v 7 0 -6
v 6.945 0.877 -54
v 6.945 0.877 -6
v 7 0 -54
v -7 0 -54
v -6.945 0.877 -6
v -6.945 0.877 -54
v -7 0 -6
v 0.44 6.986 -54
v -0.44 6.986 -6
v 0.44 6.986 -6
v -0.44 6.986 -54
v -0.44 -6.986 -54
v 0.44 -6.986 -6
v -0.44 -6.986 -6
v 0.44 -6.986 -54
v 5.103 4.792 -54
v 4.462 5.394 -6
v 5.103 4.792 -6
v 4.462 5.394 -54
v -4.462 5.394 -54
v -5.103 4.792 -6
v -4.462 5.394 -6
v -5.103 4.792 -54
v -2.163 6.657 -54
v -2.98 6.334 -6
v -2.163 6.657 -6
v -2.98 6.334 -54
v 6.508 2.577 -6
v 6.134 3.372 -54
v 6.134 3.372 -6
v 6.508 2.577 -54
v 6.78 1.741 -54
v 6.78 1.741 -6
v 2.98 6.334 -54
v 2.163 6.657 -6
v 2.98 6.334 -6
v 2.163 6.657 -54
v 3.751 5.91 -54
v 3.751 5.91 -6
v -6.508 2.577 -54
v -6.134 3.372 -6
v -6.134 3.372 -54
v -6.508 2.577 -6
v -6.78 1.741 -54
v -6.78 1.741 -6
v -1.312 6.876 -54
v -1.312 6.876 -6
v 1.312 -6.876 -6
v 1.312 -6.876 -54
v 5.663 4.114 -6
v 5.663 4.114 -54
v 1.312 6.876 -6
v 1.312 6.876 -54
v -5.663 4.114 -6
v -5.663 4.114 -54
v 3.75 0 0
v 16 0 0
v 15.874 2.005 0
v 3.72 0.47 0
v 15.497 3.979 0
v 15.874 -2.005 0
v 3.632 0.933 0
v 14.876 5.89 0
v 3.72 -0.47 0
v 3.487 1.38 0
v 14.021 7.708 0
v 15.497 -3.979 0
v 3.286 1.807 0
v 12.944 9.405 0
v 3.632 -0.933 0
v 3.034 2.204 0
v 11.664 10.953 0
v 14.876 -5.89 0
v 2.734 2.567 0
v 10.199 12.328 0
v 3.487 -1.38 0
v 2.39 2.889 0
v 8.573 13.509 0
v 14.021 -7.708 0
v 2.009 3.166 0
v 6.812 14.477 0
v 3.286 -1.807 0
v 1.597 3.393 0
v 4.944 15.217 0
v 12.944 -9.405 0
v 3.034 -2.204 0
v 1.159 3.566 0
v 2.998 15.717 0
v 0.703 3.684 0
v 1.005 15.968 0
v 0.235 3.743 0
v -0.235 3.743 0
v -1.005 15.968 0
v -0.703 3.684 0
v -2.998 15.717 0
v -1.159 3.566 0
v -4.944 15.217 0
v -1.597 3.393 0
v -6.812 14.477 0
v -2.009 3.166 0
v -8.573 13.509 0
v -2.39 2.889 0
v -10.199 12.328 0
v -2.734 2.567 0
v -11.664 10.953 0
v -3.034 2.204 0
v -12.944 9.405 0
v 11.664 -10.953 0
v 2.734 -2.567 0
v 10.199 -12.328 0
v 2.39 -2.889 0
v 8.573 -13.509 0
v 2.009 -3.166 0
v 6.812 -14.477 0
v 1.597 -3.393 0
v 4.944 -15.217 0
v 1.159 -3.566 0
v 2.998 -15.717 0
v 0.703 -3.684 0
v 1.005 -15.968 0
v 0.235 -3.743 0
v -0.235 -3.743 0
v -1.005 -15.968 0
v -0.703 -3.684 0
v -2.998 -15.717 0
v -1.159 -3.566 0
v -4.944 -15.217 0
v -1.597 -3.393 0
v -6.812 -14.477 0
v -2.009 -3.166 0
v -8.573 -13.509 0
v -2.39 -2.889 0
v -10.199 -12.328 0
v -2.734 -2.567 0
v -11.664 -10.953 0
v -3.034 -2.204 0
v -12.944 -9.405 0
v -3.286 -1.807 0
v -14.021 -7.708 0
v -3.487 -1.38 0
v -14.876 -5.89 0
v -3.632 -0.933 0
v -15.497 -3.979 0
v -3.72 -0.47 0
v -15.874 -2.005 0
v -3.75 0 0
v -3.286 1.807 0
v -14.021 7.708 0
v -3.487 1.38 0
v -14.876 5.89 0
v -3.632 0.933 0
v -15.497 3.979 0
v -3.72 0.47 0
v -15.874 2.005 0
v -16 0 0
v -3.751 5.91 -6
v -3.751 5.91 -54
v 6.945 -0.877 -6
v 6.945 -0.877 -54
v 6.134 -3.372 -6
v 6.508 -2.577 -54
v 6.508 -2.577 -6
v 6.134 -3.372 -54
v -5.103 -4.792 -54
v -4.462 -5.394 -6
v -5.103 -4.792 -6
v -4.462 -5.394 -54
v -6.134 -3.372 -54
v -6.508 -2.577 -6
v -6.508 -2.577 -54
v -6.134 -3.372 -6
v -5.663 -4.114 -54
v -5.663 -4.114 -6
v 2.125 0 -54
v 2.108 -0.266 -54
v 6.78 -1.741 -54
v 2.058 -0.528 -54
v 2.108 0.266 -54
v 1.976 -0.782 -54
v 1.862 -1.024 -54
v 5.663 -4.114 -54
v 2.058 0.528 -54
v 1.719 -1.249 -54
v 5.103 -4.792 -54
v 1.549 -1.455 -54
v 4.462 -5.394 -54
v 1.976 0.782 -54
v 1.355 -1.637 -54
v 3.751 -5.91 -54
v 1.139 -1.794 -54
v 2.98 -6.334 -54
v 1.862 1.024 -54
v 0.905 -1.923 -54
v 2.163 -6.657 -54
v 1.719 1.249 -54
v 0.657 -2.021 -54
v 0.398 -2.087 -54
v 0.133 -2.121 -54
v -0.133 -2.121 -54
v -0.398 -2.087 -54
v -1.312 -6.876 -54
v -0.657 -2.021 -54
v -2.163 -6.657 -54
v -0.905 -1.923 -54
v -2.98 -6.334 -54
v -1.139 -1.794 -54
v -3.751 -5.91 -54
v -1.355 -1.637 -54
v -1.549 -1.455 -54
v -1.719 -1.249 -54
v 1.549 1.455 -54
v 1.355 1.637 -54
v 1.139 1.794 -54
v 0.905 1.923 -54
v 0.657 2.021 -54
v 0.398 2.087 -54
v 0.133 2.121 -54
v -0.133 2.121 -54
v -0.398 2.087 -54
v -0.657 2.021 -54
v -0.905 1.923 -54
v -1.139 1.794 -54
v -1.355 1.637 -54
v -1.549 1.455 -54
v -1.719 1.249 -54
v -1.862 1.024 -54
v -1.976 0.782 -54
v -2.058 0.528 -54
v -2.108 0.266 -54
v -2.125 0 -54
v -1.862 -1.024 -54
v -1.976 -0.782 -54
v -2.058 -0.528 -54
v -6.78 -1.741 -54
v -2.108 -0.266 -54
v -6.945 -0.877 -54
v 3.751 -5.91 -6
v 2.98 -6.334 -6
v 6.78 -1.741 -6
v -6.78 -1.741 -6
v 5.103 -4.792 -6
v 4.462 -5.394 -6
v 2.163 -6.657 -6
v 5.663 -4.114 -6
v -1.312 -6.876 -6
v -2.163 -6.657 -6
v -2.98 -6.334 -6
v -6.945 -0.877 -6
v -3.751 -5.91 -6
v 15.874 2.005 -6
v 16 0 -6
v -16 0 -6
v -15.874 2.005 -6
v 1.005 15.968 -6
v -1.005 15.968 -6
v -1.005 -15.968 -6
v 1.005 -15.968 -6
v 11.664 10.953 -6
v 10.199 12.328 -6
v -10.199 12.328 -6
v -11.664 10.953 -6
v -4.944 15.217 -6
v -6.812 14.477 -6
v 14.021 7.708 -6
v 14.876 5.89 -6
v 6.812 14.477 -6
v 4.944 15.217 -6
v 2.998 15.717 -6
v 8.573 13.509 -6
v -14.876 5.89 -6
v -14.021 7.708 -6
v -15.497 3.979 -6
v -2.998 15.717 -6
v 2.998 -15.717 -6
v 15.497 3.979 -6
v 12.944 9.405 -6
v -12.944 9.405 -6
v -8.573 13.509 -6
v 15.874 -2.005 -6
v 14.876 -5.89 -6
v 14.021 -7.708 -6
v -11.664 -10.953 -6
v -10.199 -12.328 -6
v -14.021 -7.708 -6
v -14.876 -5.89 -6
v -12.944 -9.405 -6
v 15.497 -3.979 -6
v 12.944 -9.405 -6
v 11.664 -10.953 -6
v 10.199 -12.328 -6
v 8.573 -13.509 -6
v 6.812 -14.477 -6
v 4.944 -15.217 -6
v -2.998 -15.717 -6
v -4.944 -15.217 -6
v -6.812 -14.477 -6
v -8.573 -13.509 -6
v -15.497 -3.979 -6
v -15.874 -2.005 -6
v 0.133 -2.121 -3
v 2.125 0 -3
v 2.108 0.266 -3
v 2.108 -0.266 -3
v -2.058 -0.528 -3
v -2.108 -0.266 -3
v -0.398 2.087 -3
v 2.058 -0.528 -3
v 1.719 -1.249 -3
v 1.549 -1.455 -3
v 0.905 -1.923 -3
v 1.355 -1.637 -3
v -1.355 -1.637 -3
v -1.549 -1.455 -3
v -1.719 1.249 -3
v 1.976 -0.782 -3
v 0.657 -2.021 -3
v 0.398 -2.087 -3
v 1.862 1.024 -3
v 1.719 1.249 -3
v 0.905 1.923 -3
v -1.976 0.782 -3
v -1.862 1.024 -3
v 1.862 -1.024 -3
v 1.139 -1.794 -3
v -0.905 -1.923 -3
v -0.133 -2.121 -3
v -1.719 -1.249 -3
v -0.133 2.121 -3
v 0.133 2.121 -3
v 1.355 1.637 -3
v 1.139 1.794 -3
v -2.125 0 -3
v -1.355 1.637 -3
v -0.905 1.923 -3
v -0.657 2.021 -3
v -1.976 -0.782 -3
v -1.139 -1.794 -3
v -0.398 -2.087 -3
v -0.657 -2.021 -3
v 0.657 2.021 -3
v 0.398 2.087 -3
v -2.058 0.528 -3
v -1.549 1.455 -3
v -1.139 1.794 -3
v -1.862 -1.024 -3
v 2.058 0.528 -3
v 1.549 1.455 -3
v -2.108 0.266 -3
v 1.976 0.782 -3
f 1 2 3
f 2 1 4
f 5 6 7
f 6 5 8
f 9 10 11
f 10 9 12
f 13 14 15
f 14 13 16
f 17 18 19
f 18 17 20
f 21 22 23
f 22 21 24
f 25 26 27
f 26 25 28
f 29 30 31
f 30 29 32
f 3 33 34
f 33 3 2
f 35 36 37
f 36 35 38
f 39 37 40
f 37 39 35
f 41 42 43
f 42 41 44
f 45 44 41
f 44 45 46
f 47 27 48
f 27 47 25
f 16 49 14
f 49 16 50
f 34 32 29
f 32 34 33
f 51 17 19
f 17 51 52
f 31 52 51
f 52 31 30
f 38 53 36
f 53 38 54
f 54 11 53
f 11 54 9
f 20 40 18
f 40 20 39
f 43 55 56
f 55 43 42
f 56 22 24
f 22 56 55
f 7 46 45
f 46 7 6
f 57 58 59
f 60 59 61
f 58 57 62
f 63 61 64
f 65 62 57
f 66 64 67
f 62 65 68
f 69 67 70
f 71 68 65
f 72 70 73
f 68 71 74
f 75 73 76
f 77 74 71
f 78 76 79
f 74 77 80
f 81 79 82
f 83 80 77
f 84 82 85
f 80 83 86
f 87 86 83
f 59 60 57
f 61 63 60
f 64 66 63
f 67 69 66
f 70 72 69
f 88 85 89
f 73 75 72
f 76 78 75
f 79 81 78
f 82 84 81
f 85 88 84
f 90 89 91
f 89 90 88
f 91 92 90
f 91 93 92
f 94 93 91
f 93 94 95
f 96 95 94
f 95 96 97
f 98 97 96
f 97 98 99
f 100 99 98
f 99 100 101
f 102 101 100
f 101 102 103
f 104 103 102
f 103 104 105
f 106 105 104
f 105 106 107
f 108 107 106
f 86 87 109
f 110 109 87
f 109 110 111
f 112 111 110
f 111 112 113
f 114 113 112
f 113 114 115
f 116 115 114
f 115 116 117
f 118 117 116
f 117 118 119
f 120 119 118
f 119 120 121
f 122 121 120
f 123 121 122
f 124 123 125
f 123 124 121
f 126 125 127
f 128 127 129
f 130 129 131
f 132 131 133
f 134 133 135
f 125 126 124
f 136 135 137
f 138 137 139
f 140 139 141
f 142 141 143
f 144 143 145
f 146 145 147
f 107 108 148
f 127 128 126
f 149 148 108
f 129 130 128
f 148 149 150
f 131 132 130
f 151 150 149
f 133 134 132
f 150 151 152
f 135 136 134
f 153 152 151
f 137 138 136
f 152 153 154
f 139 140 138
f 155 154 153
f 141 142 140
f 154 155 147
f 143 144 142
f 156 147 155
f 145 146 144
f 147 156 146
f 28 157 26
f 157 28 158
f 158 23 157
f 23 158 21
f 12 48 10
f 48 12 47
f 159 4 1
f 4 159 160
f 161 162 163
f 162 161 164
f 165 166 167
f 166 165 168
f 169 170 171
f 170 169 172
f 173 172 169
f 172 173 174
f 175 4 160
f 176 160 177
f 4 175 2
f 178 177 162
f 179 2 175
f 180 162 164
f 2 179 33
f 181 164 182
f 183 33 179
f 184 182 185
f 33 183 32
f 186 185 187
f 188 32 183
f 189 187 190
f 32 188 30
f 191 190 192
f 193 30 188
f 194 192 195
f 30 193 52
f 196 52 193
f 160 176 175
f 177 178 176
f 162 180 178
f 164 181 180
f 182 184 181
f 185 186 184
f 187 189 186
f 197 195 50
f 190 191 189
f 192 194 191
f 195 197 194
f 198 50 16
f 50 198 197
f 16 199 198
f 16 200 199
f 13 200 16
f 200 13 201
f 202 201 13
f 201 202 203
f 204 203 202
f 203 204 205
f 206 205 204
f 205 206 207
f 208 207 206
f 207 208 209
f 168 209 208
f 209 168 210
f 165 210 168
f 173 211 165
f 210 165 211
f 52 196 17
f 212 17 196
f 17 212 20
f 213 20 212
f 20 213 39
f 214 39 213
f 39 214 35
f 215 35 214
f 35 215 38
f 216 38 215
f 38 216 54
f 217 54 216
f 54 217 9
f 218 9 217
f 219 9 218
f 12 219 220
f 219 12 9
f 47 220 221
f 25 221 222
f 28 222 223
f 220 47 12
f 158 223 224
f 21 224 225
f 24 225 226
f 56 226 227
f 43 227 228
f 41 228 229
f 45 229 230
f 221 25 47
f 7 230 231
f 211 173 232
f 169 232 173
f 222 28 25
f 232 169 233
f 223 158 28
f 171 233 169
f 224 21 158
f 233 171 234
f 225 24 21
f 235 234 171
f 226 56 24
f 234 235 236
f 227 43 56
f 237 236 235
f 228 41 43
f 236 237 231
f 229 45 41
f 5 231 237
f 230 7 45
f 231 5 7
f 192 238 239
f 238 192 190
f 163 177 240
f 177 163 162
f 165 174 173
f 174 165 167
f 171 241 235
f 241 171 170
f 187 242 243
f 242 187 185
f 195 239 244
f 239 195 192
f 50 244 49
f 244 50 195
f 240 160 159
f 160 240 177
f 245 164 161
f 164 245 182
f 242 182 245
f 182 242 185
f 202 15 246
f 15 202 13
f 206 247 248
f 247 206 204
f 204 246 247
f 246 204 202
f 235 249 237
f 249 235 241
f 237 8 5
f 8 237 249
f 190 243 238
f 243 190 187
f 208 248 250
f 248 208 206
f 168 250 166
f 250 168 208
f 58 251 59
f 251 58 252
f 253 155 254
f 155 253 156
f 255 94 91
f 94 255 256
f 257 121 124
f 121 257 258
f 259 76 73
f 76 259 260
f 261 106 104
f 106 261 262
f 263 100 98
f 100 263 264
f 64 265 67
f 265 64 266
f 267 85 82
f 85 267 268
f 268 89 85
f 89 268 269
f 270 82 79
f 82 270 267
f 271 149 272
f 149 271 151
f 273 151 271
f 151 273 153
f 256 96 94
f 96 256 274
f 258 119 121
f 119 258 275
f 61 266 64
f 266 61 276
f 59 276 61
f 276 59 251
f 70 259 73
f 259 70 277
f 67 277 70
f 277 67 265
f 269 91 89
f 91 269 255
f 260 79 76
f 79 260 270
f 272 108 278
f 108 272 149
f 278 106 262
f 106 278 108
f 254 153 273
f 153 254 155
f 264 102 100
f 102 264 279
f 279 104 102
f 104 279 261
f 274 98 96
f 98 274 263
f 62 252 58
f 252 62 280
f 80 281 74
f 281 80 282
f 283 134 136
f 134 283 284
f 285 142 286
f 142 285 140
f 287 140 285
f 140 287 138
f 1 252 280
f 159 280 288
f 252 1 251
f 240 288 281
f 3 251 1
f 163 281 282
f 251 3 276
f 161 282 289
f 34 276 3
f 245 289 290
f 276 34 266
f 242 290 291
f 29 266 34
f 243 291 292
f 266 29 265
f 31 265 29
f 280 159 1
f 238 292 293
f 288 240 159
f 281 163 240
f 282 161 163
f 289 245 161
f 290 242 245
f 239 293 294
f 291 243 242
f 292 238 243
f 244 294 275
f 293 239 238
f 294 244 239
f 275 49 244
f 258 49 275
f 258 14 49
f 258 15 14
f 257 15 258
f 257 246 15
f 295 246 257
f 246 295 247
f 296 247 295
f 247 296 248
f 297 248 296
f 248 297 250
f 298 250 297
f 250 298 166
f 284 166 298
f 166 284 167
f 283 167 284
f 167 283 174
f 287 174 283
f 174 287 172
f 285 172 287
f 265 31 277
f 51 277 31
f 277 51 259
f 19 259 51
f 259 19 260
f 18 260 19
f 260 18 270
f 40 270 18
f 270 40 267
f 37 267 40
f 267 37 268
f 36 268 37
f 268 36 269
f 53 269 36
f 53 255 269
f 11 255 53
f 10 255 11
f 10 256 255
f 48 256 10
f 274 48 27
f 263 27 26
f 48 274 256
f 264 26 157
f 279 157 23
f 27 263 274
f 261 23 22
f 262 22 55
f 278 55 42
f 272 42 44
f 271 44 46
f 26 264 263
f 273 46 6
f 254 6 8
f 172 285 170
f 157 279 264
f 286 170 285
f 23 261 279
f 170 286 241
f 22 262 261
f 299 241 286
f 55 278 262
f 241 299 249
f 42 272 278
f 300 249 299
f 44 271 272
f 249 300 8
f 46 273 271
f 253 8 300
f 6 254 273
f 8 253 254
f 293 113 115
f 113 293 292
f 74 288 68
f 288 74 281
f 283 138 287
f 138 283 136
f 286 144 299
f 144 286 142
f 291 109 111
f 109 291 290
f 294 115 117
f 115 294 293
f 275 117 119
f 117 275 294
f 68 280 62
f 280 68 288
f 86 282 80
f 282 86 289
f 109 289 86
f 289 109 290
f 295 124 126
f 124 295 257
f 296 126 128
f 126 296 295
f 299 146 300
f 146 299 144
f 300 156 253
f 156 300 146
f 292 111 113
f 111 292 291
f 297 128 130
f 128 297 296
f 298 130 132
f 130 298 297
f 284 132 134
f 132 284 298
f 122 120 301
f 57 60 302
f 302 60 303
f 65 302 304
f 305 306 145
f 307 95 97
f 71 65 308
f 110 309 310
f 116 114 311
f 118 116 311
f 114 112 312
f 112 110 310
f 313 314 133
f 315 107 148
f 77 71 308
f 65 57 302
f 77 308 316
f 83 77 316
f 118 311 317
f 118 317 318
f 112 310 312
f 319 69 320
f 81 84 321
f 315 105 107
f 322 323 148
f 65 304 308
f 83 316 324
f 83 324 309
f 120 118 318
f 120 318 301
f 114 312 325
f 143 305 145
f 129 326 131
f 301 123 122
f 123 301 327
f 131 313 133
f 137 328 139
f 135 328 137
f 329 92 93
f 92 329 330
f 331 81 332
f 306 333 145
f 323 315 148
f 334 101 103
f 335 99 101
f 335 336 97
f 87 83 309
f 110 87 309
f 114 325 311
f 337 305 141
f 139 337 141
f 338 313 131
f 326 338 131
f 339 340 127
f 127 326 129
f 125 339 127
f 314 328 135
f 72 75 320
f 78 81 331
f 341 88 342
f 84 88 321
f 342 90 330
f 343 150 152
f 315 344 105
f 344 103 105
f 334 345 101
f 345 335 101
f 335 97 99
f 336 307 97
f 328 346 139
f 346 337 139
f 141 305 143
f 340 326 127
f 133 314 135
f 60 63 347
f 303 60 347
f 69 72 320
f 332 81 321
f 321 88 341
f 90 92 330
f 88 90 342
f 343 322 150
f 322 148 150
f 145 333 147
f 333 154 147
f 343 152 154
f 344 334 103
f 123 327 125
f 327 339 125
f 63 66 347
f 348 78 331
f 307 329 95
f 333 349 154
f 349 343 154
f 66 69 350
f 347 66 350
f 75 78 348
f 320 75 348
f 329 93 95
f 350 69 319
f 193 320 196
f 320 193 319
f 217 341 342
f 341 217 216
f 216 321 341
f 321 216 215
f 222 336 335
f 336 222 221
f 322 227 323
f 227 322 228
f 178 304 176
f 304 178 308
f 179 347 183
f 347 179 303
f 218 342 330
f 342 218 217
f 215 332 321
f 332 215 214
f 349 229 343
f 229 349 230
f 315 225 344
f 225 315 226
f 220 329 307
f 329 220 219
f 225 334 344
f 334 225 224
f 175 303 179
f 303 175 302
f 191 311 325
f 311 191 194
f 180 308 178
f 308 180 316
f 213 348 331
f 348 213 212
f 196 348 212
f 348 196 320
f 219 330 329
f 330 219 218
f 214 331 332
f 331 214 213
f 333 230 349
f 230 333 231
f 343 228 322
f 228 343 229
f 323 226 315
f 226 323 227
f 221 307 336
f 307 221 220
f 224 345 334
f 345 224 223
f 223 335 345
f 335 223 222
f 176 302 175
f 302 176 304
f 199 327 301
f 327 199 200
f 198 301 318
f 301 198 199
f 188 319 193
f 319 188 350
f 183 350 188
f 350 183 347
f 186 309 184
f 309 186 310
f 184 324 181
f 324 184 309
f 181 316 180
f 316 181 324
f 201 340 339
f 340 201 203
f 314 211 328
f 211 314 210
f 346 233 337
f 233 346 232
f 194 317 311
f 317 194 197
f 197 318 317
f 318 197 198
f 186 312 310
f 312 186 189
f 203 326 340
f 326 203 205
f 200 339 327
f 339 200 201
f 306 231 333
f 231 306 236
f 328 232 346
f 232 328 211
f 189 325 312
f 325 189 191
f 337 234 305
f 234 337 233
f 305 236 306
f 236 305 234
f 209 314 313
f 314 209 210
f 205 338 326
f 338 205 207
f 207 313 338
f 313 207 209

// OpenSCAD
$fn = 50;


difference() {
	union() {
		translate(v = [0, 0, -54.0000000000]) {
			cylinder(h = 54, r = 7.0000000000);
		}
		translate(v = [0, 0, -6.0000000000]) {
			cylinder(h = 6, r = 16.0000000000);
		}
	}
	union() {
		translate(v = [0, 0, 0]) {
			rotate(a = [0, 0, 0]) {
				difference() {
					union() {
						#translate(v = [0, 0, -54.0000000000]) {
							cylinder(h = 54, r = 2.0000000000);
						}
						#translate(v = [0, 0, -3]) {
							cylinder(h = 3, r = 7.0000000000, r1 = 2.1250000000, r2 = 3.7500000000);
						}
						#translate(v = [0, 0, -54.0000000000]) {
							cylinder(h = 54, r = 2.1250000000);
						}
						#translate(v = [0, 0, -54.0000000000]) {
							cylinder(h = 54, r = 2.0000000000);
						}
					}
					union();
				}
			}
		}
	}
}
